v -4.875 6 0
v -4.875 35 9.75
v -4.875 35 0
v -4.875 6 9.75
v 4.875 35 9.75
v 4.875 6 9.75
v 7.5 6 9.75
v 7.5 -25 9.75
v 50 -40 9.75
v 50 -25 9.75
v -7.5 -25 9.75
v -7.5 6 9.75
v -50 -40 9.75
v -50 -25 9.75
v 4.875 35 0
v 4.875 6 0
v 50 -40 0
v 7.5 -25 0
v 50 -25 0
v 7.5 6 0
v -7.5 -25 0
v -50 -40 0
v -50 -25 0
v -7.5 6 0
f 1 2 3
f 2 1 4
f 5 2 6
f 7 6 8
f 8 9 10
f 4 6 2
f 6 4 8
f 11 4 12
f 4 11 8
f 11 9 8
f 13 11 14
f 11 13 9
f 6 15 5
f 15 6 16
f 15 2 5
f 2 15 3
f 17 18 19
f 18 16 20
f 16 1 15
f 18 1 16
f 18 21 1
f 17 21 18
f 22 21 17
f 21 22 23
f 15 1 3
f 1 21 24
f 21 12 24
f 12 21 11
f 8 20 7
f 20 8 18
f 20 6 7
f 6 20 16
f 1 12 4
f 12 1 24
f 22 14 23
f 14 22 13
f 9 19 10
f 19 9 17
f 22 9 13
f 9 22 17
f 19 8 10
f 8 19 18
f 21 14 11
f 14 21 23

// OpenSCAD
// primer handle (need 2 items)

// clearance
tol = 0.25;

// innere insert parameters
iih = 10;
iiw = 10;
iil = 20;

// outer insert parameters
iod = 15;
ioh = iih;
irh = iih;
irw = 15;
irl = 6;

real_h = iih - tol;

translate([-(iiw - tol) / 2, 0, 0]) cube([iiw - tol, iil + irw, real_h]);
translate([-irw / 2, -irl, 0]) cube([irw, irl * 2, real_h]);

translate([-7.5, -30, 0]) cube([15, 30, real_h]);

translate([-50, -40, 0]) cube([100, 15, real_h]);
